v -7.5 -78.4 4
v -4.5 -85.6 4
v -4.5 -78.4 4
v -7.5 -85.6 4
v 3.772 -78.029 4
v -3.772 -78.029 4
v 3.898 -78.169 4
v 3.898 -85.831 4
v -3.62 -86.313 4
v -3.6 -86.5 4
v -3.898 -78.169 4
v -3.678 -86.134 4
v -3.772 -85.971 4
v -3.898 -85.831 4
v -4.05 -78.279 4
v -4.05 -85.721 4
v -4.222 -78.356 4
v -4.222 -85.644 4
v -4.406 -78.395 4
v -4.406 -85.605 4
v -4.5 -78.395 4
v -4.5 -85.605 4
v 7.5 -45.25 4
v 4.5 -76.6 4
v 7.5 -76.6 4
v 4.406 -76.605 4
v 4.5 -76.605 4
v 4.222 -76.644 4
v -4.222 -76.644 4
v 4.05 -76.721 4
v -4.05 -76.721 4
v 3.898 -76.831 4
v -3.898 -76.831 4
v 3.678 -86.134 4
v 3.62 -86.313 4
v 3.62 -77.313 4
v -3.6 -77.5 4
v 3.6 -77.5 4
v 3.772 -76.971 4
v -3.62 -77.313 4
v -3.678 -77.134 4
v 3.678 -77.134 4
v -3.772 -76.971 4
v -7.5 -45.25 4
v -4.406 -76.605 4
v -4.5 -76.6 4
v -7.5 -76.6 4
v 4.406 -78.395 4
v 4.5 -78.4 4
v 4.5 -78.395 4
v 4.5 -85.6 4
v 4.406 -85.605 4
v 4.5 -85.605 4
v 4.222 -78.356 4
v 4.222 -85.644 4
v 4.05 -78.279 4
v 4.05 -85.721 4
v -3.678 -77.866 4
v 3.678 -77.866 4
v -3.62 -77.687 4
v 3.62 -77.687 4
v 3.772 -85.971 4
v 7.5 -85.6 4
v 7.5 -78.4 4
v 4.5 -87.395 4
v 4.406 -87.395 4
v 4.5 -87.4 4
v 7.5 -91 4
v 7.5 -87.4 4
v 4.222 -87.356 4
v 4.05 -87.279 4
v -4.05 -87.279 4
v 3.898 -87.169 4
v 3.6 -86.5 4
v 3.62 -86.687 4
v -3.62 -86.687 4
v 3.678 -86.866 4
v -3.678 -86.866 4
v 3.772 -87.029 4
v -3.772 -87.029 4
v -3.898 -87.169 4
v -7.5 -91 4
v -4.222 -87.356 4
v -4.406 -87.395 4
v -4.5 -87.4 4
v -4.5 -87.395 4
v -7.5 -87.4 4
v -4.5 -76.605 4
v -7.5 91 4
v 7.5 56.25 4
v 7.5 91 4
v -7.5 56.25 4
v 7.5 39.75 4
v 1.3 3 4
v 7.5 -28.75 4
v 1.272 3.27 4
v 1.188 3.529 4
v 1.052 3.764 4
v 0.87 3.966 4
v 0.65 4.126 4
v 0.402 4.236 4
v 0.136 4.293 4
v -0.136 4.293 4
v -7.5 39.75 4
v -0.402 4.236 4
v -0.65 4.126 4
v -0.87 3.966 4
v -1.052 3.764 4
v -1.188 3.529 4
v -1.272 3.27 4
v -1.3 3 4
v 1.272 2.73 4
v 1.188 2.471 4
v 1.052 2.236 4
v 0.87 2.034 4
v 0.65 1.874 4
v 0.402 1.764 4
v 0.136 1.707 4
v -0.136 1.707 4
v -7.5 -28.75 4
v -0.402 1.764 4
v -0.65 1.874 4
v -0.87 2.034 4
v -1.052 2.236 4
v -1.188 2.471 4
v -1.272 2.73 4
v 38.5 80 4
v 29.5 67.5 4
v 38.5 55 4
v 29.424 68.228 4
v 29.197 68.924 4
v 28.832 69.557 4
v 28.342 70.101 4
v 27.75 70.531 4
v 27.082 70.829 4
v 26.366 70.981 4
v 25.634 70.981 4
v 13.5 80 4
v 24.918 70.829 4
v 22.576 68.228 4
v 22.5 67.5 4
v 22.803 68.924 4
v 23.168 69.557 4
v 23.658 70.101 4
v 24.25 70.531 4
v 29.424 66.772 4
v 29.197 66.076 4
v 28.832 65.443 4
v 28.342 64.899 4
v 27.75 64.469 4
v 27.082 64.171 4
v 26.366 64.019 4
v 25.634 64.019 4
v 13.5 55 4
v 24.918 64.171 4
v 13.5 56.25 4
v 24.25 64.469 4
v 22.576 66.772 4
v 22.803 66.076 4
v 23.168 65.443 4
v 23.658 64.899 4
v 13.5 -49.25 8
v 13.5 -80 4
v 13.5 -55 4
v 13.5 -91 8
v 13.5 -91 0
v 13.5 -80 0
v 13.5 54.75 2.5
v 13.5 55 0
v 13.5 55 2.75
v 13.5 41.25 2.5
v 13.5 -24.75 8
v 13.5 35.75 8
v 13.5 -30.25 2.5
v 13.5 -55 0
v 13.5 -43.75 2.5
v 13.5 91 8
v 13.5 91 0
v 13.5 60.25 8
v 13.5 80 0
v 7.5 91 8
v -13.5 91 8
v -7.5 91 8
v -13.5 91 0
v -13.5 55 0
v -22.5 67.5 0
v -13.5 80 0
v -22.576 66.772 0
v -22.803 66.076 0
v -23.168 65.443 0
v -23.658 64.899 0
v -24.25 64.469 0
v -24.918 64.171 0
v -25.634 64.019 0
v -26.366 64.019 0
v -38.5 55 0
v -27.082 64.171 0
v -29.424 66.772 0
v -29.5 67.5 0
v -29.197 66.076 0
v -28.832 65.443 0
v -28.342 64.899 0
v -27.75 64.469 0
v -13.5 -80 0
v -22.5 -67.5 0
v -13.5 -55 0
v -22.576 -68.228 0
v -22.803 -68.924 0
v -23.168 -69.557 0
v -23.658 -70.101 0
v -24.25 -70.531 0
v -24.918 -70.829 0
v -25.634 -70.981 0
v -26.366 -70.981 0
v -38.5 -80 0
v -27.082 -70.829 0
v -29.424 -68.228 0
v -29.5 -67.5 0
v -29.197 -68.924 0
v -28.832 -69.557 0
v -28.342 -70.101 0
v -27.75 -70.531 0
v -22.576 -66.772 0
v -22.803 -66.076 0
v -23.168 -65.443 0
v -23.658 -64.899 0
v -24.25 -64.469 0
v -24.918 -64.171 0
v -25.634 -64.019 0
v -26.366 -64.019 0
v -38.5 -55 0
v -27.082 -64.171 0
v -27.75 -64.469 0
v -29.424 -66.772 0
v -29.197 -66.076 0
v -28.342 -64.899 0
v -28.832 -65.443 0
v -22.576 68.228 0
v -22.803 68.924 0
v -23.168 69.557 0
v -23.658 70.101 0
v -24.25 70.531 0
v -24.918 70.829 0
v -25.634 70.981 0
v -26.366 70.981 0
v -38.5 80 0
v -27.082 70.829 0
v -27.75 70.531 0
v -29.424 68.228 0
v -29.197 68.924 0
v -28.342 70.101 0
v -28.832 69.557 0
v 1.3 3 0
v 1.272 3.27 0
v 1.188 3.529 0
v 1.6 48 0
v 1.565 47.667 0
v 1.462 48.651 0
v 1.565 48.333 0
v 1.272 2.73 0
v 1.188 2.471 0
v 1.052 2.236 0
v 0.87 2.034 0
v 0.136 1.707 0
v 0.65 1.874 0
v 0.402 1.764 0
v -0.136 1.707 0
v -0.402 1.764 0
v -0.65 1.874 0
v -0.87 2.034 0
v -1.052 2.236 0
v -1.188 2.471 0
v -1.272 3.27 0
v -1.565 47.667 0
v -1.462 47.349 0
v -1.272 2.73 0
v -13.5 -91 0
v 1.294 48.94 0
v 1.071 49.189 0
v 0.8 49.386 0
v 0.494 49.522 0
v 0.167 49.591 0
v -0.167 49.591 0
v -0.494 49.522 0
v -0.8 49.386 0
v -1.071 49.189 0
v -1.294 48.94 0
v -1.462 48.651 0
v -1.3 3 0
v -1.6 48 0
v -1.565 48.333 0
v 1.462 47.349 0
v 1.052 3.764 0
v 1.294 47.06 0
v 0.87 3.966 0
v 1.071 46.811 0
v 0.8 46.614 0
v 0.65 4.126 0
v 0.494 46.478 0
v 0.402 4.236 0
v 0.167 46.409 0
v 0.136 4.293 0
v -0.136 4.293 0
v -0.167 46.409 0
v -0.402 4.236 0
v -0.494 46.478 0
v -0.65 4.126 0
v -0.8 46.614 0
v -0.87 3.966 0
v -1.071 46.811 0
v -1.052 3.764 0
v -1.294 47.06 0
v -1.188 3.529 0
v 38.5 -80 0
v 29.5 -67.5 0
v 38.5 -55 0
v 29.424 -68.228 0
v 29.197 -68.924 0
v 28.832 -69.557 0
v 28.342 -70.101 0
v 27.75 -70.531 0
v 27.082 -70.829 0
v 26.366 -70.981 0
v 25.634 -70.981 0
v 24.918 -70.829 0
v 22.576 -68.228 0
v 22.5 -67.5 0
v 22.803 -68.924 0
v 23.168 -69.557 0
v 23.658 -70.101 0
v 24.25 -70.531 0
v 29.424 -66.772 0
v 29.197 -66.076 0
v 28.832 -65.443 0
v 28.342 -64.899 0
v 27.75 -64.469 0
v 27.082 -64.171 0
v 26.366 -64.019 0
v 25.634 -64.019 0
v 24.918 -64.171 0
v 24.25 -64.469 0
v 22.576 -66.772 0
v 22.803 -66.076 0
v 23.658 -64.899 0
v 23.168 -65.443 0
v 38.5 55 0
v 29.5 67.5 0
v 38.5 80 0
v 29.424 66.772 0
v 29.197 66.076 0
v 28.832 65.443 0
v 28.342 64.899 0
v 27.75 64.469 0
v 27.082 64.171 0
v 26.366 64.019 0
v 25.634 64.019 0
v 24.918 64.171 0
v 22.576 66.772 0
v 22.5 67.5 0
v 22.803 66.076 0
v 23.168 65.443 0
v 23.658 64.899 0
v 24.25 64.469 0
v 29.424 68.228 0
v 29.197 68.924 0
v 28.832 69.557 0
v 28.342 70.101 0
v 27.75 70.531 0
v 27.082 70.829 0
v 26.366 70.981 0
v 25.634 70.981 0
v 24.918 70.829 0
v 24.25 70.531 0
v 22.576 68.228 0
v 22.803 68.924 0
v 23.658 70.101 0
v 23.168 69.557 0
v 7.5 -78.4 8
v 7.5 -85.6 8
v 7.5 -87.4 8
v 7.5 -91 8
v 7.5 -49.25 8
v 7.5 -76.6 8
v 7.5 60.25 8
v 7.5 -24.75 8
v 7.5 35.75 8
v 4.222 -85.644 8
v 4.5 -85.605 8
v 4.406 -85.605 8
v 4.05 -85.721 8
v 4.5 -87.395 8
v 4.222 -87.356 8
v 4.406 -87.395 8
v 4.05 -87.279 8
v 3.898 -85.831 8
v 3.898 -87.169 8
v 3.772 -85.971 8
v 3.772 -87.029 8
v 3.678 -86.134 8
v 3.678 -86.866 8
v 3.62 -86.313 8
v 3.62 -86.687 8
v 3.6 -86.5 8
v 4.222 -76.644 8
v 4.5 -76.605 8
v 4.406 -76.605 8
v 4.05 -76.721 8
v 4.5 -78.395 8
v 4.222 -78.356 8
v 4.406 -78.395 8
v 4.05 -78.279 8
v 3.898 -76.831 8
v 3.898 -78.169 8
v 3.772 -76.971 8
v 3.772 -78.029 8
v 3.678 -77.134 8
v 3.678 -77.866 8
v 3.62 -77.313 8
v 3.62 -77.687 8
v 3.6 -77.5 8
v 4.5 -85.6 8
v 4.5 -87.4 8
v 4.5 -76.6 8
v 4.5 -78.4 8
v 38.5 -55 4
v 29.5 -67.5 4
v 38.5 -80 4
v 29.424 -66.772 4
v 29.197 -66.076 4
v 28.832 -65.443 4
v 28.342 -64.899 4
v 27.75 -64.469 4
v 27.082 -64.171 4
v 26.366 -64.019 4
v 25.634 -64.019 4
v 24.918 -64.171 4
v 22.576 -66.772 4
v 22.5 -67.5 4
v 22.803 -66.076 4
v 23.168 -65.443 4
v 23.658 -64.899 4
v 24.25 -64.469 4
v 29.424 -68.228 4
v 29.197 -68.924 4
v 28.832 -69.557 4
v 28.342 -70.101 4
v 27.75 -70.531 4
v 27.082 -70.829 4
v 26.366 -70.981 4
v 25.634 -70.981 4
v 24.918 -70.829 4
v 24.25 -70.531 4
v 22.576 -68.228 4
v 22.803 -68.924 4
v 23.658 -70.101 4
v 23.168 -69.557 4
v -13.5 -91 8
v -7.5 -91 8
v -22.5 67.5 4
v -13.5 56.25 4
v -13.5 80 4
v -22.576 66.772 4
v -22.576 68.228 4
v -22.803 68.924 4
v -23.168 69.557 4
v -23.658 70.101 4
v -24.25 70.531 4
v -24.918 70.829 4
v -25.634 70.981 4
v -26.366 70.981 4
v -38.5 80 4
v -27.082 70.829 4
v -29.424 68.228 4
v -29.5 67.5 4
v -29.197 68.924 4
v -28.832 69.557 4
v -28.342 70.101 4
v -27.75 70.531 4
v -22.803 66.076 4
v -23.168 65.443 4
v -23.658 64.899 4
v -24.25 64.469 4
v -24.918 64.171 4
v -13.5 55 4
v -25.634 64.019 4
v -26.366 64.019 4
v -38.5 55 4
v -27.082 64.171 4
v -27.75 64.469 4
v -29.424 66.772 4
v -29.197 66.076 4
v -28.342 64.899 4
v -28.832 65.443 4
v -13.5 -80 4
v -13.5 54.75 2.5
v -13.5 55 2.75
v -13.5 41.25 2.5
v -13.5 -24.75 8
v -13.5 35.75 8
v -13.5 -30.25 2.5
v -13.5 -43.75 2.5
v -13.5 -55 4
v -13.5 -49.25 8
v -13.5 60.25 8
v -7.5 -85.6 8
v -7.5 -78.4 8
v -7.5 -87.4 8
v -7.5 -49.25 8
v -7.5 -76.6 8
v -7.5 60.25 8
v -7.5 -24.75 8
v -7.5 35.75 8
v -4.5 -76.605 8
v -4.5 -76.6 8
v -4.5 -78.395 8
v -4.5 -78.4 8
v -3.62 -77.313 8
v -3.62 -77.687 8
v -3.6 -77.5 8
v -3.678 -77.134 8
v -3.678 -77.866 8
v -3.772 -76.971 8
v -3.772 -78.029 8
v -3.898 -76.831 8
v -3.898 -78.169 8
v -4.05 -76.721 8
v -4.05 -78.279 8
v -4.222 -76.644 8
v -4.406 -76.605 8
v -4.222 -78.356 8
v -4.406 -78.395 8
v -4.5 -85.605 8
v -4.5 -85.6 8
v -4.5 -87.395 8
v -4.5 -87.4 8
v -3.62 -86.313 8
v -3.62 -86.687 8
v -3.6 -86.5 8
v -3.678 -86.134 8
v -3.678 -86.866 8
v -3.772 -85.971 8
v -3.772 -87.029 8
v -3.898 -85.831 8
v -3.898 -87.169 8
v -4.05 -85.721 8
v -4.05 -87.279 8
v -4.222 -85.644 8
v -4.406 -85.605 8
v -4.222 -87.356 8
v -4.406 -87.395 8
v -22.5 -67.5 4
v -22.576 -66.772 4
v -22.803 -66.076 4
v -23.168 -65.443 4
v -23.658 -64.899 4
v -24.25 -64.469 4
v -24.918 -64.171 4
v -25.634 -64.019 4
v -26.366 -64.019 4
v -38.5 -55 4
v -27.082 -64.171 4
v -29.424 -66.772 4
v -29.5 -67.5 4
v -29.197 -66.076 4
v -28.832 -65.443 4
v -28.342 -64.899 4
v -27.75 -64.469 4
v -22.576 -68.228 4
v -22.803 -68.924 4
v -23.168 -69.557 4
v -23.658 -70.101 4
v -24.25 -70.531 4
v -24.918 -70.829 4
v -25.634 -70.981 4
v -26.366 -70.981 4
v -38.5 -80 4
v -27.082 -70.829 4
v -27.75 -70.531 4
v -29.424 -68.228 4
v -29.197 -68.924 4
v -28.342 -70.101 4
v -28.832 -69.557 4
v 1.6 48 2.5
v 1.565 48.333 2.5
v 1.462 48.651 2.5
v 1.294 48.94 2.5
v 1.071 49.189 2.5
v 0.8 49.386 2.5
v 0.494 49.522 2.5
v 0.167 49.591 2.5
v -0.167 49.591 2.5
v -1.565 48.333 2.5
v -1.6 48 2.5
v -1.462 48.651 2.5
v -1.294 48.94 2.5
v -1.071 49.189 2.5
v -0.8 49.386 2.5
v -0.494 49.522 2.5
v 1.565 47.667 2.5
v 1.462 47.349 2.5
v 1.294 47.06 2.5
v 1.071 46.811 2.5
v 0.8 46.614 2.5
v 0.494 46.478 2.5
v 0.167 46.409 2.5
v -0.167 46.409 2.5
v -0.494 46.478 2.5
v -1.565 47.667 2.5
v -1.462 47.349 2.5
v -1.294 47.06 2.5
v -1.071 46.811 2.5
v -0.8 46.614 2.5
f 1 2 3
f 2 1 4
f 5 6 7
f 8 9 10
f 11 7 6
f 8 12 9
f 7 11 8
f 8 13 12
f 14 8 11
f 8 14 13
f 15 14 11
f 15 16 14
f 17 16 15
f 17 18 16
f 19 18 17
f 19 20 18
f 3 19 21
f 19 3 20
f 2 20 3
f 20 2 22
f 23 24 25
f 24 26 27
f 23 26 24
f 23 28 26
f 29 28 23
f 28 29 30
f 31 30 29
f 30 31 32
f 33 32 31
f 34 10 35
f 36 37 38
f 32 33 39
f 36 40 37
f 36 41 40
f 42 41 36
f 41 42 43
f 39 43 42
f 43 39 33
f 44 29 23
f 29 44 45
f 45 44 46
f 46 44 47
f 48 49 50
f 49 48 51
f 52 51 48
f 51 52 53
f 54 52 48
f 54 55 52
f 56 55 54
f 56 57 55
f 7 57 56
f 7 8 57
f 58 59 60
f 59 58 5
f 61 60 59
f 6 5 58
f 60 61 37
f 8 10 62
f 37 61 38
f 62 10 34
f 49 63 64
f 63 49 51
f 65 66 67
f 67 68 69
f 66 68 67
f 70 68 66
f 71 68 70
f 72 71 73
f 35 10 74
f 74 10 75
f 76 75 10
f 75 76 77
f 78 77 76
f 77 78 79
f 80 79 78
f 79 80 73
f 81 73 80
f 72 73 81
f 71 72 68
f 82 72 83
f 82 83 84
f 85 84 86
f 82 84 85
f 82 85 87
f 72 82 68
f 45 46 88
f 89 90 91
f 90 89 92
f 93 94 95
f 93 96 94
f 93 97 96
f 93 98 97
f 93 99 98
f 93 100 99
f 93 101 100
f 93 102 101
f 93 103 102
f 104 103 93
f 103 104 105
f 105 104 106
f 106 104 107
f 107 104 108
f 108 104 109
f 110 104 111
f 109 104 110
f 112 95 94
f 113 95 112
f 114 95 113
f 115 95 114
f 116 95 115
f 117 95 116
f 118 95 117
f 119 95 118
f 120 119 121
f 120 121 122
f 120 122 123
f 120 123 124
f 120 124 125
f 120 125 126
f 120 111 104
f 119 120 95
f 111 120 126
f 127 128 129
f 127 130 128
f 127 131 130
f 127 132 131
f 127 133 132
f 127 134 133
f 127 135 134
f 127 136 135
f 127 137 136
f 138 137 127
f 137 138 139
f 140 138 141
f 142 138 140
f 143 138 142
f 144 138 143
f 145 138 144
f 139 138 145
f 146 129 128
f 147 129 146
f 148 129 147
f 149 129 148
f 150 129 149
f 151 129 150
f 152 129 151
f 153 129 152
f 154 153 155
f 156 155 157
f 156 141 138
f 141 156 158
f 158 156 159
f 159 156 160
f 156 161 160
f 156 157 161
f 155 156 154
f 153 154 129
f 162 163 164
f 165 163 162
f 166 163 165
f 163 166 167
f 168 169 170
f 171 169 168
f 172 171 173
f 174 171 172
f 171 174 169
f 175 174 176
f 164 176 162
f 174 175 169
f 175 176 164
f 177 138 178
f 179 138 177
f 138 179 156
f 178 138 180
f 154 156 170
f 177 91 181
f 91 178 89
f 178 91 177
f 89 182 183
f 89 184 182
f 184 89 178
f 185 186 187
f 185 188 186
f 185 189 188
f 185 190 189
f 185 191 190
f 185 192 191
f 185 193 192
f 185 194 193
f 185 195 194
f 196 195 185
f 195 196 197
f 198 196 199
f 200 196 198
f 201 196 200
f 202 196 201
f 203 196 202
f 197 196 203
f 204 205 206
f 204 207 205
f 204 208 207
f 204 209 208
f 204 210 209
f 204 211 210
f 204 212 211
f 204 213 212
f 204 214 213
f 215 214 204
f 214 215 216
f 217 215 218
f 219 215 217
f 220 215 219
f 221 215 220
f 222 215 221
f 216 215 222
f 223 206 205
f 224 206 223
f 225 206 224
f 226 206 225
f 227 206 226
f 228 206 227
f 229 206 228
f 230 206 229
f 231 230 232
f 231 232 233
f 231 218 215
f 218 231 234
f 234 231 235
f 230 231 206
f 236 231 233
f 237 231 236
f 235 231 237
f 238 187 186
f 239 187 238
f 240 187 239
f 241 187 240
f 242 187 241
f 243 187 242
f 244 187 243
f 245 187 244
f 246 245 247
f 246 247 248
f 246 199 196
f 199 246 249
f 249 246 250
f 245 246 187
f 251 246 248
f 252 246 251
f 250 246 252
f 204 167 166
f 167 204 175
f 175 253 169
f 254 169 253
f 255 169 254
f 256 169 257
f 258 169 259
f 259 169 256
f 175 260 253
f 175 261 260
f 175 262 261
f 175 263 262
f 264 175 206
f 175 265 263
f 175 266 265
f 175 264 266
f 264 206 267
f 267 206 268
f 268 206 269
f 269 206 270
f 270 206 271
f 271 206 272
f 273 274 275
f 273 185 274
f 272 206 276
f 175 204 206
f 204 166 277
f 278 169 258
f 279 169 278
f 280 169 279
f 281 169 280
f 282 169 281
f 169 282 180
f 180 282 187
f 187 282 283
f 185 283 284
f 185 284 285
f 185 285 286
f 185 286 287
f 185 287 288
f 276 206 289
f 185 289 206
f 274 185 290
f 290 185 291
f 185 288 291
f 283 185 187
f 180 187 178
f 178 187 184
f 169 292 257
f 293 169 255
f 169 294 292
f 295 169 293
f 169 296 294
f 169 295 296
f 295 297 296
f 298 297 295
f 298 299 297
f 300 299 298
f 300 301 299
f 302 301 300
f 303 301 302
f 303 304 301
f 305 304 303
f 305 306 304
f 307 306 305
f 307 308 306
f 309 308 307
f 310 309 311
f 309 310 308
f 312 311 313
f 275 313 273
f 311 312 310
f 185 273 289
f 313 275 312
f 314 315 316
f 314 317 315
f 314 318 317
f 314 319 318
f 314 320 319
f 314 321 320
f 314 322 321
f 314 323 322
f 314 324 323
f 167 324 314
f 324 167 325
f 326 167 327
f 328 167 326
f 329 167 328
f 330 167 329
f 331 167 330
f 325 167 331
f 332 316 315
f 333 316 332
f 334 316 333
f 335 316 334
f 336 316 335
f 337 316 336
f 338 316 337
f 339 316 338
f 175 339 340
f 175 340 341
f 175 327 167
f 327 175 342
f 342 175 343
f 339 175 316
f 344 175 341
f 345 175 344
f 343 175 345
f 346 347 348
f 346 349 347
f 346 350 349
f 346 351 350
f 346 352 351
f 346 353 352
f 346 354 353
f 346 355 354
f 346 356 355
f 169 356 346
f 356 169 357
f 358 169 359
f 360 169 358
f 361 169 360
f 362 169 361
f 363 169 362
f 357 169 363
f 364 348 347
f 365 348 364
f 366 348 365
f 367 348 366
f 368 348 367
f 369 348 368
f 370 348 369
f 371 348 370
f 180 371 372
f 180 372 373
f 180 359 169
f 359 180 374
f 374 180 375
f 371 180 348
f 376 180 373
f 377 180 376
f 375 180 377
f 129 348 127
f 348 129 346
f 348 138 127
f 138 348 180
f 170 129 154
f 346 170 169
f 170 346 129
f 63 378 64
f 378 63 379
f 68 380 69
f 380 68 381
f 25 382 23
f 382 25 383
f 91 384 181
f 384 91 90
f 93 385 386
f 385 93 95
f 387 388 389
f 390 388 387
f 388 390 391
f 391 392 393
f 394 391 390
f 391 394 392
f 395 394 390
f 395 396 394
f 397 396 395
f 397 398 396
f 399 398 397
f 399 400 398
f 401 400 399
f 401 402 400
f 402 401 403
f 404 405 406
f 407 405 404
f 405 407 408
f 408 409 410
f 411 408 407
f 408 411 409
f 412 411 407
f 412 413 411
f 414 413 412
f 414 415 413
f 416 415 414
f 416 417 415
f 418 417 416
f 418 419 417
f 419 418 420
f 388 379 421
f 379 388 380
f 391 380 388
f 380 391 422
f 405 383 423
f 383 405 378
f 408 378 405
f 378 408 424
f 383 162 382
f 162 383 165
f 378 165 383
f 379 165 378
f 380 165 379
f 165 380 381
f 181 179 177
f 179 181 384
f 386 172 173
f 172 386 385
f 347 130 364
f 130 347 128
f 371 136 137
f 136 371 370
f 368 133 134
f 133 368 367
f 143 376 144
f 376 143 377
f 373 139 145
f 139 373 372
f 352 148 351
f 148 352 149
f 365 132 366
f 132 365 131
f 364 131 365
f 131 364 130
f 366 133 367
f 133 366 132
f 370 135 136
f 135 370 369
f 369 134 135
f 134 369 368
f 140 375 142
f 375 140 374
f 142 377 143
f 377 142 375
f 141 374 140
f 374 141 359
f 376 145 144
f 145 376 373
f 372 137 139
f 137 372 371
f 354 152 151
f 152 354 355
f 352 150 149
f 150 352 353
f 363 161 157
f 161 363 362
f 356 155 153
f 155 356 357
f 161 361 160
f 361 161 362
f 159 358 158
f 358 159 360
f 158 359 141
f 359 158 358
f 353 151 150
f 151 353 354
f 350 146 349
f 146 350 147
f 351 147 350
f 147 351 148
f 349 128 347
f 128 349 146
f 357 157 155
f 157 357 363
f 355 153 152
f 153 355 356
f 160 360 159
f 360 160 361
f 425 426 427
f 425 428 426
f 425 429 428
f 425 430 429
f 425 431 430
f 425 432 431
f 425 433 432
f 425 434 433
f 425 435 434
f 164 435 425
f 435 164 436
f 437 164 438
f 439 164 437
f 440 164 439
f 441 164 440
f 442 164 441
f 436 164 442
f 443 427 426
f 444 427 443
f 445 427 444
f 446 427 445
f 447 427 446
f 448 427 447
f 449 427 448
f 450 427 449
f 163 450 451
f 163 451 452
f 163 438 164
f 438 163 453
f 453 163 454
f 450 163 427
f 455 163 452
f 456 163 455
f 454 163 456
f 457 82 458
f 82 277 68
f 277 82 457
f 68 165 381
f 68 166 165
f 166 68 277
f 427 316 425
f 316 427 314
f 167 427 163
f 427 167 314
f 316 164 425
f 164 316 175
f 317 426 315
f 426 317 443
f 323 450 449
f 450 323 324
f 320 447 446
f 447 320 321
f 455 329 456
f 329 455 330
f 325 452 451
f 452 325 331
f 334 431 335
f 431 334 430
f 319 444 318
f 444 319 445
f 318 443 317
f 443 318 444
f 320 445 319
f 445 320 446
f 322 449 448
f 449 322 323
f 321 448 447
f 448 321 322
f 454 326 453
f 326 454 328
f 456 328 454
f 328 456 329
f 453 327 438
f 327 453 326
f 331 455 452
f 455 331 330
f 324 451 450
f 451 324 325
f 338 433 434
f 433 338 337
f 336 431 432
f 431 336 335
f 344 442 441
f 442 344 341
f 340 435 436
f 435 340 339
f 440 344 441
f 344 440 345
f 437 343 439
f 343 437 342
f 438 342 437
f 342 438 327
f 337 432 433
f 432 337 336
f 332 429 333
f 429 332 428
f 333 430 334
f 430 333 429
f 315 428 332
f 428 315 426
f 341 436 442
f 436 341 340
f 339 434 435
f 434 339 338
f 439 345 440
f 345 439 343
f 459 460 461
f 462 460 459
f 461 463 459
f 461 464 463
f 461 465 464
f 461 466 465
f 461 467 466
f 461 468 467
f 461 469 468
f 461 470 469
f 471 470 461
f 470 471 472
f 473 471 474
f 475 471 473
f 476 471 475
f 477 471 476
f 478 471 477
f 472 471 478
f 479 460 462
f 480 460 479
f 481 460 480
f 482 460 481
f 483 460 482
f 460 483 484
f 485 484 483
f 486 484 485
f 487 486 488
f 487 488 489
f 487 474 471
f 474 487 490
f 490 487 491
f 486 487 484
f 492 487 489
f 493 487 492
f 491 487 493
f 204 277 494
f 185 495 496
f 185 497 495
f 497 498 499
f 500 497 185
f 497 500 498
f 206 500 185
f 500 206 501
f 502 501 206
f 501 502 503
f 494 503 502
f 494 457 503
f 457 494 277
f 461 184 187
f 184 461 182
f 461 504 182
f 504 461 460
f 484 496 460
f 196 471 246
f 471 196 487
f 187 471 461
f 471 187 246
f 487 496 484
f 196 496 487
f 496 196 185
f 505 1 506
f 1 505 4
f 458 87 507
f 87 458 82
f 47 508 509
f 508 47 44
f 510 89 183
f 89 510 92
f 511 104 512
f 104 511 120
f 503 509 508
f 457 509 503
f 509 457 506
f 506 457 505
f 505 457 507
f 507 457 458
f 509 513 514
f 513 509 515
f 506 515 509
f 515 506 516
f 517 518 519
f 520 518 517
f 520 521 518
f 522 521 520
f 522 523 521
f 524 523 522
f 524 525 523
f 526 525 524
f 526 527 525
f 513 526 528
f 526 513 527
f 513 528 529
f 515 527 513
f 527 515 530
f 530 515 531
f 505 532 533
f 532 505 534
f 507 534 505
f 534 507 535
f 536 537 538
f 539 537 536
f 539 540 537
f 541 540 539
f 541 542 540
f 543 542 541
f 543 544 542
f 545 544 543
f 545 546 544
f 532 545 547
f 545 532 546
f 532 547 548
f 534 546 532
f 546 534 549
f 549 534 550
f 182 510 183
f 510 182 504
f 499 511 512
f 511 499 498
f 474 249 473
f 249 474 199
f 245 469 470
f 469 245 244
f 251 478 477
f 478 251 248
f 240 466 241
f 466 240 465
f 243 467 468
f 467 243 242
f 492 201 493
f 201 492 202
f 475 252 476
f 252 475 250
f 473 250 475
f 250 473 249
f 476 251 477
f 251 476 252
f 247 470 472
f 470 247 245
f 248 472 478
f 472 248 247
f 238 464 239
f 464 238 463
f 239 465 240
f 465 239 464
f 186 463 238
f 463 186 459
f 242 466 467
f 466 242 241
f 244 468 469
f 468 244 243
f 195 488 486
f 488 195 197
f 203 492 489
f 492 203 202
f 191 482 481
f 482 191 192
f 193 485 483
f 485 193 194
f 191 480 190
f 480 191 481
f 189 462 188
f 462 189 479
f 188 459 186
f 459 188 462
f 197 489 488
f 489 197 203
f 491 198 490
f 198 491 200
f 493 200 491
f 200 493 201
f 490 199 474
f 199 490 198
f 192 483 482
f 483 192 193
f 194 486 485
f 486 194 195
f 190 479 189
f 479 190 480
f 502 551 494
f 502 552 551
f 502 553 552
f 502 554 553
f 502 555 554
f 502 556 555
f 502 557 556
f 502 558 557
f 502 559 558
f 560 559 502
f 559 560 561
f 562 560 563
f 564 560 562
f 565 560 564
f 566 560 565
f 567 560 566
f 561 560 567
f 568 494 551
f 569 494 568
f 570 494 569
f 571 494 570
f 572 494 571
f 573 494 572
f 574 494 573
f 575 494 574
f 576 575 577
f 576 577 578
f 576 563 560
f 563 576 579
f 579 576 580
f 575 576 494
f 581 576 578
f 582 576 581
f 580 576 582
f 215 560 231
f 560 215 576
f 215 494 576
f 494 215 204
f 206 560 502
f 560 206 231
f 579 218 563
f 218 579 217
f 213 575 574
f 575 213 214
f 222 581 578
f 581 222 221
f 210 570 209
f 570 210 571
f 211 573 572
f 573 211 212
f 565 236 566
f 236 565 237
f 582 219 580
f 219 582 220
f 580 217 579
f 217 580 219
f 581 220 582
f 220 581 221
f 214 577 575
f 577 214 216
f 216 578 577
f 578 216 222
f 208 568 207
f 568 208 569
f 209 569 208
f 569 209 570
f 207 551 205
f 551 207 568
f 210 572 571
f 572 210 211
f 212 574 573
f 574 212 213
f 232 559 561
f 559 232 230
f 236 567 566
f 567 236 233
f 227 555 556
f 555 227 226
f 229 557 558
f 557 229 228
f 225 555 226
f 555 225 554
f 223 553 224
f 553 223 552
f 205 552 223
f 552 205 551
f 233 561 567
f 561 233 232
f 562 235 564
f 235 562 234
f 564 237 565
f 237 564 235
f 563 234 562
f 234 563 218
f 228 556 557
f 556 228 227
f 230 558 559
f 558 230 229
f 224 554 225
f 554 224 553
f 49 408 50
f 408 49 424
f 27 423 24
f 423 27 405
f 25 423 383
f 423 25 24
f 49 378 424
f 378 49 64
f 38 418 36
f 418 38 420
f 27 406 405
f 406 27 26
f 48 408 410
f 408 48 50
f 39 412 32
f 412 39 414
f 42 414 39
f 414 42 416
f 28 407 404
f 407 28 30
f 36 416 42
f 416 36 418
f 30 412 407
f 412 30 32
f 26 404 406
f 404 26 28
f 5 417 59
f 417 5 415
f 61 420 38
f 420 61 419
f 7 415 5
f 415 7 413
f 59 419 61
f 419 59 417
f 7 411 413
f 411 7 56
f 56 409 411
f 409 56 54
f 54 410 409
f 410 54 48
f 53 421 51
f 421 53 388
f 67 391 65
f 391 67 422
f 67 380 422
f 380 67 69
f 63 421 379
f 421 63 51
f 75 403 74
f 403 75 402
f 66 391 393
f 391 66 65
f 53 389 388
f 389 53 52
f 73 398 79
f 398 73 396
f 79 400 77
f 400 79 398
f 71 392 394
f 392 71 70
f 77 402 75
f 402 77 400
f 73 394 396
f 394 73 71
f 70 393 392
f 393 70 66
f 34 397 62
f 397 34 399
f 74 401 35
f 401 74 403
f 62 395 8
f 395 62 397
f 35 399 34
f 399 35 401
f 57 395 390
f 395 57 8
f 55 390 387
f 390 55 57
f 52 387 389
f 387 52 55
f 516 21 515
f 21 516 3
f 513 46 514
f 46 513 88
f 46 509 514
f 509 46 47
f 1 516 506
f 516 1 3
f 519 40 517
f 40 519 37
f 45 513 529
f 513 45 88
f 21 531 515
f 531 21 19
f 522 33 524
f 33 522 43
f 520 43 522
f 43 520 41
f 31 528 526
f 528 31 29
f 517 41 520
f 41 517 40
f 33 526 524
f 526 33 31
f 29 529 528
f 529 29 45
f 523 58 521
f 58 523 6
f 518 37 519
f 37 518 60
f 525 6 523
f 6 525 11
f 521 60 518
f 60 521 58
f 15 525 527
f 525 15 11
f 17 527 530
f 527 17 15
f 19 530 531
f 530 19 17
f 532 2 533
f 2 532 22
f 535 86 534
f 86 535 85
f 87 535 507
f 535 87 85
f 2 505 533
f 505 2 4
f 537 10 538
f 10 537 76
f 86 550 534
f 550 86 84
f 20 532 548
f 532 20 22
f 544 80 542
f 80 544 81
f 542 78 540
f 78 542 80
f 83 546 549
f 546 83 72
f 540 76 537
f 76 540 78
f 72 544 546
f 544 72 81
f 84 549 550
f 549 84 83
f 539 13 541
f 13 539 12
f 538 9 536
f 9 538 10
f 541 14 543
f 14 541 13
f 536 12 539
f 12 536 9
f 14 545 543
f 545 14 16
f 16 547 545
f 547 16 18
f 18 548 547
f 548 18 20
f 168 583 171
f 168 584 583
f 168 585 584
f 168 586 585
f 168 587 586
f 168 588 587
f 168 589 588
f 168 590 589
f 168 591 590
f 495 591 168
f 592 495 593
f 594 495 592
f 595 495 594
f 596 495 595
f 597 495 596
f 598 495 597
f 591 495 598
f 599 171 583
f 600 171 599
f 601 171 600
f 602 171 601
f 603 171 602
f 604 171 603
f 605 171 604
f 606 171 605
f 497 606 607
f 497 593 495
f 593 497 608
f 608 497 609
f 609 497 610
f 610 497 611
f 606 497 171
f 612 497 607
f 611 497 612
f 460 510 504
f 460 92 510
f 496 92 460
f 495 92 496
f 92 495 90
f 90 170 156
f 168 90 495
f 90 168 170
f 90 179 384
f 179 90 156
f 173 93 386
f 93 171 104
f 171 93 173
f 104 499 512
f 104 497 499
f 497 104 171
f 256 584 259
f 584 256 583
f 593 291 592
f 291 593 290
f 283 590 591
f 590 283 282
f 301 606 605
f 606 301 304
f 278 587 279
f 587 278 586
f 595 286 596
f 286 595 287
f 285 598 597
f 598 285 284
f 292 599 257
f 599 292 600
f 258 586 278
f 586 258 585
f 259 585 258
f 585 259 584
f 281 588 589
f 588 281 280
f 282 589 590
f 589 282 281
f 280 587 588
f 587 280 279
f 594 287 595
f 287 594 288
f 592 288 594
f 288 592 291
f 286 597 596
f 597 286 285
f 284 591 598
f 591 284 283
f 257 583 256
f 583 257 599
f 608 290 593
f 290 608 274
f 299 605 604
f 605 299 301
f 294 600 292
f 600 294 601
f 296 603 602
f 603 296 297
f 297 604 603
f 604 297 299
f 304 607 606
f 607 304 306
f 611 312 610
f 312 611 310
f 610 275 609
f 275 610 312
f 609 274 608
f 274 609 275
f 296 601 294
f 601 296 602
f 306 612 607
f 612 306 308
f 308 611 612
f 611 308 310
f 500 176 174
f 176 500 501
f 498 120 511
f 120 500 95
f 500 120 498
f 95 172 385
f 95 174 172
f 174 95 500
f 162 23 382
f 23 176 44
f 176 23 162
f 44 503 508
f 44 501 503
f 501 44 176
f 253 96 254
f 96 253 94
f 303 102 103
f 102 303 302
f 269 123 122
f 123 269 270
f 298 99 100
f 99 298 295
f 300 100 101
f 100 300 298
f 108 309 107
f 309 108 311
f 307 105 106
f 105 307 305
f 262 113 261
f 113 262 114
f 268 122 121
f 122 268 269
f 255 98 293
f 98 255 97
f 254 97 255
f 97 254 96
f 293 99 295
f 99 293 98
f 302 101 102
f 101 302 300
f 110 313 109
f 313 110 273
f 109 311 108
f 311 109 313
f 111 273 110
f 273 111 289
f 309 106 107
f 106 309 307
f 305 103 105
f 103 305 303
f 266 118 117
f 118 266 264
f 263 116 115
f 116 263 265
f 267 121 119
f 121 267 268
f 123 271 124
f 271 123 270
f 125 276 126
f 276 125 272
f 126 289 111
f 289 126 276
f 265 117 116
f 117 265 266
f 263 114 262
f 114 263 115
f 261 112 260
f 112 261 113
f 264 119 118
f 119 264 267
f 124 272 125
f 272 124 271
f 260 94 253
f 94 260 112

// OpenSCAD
base_depth = 4.0;
wall = 6.0;
wing_width = 25.0;
strip_width= 15.0;
hole_diameter = 7.0;
slot_separation = 45.0;
slot_count=3;
column_separation = 130;
jig_length = column_separation*1.4;
jig_width = strip_width+wall*2;
wire_separation = 9.0;
wire_diam = 1.8;
end_offset = 45.0;
origin = [0, -jig_length/2 + wire_separation, 0];
$fn=30;

module quadruple() {
    for (i = [0,1]) {
        mirror([i,0,0]) {
            for (j = [0,1]) {
                mirror([0,j,0]) children();
            }
        }
    }
}

module quarter_base() {
    difference() {
        union() {
            cube([jig_width/2,(jig_length/2), base_depth]);
            translate([0, (slot_separation*slot_count-wing_width)/2, 0])
                cube([jig_width/2+wing_width,wing_width,base_depth]);
            translate([strip_width/2, 0, base_depth]) cube([wall, jig_length/2, base_depth]);
        }
        translate([(jig_width+wing_width)/2, (slot_separation*slot_count)/2, 0])
            cylinder(d=hole_diameter, h=20, center=true);
    }
}


module base() {
    quadruple() quarter_base();
}

module cutout(w, l, h) {
    quadruple() {
        cube([w/2, l/2, h]);
        translate([0, l/2, 0]) rotate([45,0,0]) cube([w/2, l, h]); 
    }
}


difference() {
    union() {
        base();
        translate(origin) {
            quadruple() 
                translate([wire_separation/2, wire_separation/2, base_depth]) {
                    translate([0, -wire_diam/2, 0])
                        cube([(strip_width-wire_separation)/2, wire_diam, base_depth]);
                    cylinder(d=wire_diam, h=base_depth);
                }
            
        }
    }
    translate(origin) translate([0, column_separation, base_depth-1.5]){
        cutout(jig_width, wire_separation*1.5, wall*3);
        cylinder(h=20, d= 3.2, center=true);
    }
    translate(origin) translate([0, column_separation-end_offset,0])
        cylinder(h=20, d=2.6, center=true);
    translate(origin) translate([0, end_offset, base_depth-1.5])
        cutout(jig_width, wire_separation*1.5, wall*2);
}
